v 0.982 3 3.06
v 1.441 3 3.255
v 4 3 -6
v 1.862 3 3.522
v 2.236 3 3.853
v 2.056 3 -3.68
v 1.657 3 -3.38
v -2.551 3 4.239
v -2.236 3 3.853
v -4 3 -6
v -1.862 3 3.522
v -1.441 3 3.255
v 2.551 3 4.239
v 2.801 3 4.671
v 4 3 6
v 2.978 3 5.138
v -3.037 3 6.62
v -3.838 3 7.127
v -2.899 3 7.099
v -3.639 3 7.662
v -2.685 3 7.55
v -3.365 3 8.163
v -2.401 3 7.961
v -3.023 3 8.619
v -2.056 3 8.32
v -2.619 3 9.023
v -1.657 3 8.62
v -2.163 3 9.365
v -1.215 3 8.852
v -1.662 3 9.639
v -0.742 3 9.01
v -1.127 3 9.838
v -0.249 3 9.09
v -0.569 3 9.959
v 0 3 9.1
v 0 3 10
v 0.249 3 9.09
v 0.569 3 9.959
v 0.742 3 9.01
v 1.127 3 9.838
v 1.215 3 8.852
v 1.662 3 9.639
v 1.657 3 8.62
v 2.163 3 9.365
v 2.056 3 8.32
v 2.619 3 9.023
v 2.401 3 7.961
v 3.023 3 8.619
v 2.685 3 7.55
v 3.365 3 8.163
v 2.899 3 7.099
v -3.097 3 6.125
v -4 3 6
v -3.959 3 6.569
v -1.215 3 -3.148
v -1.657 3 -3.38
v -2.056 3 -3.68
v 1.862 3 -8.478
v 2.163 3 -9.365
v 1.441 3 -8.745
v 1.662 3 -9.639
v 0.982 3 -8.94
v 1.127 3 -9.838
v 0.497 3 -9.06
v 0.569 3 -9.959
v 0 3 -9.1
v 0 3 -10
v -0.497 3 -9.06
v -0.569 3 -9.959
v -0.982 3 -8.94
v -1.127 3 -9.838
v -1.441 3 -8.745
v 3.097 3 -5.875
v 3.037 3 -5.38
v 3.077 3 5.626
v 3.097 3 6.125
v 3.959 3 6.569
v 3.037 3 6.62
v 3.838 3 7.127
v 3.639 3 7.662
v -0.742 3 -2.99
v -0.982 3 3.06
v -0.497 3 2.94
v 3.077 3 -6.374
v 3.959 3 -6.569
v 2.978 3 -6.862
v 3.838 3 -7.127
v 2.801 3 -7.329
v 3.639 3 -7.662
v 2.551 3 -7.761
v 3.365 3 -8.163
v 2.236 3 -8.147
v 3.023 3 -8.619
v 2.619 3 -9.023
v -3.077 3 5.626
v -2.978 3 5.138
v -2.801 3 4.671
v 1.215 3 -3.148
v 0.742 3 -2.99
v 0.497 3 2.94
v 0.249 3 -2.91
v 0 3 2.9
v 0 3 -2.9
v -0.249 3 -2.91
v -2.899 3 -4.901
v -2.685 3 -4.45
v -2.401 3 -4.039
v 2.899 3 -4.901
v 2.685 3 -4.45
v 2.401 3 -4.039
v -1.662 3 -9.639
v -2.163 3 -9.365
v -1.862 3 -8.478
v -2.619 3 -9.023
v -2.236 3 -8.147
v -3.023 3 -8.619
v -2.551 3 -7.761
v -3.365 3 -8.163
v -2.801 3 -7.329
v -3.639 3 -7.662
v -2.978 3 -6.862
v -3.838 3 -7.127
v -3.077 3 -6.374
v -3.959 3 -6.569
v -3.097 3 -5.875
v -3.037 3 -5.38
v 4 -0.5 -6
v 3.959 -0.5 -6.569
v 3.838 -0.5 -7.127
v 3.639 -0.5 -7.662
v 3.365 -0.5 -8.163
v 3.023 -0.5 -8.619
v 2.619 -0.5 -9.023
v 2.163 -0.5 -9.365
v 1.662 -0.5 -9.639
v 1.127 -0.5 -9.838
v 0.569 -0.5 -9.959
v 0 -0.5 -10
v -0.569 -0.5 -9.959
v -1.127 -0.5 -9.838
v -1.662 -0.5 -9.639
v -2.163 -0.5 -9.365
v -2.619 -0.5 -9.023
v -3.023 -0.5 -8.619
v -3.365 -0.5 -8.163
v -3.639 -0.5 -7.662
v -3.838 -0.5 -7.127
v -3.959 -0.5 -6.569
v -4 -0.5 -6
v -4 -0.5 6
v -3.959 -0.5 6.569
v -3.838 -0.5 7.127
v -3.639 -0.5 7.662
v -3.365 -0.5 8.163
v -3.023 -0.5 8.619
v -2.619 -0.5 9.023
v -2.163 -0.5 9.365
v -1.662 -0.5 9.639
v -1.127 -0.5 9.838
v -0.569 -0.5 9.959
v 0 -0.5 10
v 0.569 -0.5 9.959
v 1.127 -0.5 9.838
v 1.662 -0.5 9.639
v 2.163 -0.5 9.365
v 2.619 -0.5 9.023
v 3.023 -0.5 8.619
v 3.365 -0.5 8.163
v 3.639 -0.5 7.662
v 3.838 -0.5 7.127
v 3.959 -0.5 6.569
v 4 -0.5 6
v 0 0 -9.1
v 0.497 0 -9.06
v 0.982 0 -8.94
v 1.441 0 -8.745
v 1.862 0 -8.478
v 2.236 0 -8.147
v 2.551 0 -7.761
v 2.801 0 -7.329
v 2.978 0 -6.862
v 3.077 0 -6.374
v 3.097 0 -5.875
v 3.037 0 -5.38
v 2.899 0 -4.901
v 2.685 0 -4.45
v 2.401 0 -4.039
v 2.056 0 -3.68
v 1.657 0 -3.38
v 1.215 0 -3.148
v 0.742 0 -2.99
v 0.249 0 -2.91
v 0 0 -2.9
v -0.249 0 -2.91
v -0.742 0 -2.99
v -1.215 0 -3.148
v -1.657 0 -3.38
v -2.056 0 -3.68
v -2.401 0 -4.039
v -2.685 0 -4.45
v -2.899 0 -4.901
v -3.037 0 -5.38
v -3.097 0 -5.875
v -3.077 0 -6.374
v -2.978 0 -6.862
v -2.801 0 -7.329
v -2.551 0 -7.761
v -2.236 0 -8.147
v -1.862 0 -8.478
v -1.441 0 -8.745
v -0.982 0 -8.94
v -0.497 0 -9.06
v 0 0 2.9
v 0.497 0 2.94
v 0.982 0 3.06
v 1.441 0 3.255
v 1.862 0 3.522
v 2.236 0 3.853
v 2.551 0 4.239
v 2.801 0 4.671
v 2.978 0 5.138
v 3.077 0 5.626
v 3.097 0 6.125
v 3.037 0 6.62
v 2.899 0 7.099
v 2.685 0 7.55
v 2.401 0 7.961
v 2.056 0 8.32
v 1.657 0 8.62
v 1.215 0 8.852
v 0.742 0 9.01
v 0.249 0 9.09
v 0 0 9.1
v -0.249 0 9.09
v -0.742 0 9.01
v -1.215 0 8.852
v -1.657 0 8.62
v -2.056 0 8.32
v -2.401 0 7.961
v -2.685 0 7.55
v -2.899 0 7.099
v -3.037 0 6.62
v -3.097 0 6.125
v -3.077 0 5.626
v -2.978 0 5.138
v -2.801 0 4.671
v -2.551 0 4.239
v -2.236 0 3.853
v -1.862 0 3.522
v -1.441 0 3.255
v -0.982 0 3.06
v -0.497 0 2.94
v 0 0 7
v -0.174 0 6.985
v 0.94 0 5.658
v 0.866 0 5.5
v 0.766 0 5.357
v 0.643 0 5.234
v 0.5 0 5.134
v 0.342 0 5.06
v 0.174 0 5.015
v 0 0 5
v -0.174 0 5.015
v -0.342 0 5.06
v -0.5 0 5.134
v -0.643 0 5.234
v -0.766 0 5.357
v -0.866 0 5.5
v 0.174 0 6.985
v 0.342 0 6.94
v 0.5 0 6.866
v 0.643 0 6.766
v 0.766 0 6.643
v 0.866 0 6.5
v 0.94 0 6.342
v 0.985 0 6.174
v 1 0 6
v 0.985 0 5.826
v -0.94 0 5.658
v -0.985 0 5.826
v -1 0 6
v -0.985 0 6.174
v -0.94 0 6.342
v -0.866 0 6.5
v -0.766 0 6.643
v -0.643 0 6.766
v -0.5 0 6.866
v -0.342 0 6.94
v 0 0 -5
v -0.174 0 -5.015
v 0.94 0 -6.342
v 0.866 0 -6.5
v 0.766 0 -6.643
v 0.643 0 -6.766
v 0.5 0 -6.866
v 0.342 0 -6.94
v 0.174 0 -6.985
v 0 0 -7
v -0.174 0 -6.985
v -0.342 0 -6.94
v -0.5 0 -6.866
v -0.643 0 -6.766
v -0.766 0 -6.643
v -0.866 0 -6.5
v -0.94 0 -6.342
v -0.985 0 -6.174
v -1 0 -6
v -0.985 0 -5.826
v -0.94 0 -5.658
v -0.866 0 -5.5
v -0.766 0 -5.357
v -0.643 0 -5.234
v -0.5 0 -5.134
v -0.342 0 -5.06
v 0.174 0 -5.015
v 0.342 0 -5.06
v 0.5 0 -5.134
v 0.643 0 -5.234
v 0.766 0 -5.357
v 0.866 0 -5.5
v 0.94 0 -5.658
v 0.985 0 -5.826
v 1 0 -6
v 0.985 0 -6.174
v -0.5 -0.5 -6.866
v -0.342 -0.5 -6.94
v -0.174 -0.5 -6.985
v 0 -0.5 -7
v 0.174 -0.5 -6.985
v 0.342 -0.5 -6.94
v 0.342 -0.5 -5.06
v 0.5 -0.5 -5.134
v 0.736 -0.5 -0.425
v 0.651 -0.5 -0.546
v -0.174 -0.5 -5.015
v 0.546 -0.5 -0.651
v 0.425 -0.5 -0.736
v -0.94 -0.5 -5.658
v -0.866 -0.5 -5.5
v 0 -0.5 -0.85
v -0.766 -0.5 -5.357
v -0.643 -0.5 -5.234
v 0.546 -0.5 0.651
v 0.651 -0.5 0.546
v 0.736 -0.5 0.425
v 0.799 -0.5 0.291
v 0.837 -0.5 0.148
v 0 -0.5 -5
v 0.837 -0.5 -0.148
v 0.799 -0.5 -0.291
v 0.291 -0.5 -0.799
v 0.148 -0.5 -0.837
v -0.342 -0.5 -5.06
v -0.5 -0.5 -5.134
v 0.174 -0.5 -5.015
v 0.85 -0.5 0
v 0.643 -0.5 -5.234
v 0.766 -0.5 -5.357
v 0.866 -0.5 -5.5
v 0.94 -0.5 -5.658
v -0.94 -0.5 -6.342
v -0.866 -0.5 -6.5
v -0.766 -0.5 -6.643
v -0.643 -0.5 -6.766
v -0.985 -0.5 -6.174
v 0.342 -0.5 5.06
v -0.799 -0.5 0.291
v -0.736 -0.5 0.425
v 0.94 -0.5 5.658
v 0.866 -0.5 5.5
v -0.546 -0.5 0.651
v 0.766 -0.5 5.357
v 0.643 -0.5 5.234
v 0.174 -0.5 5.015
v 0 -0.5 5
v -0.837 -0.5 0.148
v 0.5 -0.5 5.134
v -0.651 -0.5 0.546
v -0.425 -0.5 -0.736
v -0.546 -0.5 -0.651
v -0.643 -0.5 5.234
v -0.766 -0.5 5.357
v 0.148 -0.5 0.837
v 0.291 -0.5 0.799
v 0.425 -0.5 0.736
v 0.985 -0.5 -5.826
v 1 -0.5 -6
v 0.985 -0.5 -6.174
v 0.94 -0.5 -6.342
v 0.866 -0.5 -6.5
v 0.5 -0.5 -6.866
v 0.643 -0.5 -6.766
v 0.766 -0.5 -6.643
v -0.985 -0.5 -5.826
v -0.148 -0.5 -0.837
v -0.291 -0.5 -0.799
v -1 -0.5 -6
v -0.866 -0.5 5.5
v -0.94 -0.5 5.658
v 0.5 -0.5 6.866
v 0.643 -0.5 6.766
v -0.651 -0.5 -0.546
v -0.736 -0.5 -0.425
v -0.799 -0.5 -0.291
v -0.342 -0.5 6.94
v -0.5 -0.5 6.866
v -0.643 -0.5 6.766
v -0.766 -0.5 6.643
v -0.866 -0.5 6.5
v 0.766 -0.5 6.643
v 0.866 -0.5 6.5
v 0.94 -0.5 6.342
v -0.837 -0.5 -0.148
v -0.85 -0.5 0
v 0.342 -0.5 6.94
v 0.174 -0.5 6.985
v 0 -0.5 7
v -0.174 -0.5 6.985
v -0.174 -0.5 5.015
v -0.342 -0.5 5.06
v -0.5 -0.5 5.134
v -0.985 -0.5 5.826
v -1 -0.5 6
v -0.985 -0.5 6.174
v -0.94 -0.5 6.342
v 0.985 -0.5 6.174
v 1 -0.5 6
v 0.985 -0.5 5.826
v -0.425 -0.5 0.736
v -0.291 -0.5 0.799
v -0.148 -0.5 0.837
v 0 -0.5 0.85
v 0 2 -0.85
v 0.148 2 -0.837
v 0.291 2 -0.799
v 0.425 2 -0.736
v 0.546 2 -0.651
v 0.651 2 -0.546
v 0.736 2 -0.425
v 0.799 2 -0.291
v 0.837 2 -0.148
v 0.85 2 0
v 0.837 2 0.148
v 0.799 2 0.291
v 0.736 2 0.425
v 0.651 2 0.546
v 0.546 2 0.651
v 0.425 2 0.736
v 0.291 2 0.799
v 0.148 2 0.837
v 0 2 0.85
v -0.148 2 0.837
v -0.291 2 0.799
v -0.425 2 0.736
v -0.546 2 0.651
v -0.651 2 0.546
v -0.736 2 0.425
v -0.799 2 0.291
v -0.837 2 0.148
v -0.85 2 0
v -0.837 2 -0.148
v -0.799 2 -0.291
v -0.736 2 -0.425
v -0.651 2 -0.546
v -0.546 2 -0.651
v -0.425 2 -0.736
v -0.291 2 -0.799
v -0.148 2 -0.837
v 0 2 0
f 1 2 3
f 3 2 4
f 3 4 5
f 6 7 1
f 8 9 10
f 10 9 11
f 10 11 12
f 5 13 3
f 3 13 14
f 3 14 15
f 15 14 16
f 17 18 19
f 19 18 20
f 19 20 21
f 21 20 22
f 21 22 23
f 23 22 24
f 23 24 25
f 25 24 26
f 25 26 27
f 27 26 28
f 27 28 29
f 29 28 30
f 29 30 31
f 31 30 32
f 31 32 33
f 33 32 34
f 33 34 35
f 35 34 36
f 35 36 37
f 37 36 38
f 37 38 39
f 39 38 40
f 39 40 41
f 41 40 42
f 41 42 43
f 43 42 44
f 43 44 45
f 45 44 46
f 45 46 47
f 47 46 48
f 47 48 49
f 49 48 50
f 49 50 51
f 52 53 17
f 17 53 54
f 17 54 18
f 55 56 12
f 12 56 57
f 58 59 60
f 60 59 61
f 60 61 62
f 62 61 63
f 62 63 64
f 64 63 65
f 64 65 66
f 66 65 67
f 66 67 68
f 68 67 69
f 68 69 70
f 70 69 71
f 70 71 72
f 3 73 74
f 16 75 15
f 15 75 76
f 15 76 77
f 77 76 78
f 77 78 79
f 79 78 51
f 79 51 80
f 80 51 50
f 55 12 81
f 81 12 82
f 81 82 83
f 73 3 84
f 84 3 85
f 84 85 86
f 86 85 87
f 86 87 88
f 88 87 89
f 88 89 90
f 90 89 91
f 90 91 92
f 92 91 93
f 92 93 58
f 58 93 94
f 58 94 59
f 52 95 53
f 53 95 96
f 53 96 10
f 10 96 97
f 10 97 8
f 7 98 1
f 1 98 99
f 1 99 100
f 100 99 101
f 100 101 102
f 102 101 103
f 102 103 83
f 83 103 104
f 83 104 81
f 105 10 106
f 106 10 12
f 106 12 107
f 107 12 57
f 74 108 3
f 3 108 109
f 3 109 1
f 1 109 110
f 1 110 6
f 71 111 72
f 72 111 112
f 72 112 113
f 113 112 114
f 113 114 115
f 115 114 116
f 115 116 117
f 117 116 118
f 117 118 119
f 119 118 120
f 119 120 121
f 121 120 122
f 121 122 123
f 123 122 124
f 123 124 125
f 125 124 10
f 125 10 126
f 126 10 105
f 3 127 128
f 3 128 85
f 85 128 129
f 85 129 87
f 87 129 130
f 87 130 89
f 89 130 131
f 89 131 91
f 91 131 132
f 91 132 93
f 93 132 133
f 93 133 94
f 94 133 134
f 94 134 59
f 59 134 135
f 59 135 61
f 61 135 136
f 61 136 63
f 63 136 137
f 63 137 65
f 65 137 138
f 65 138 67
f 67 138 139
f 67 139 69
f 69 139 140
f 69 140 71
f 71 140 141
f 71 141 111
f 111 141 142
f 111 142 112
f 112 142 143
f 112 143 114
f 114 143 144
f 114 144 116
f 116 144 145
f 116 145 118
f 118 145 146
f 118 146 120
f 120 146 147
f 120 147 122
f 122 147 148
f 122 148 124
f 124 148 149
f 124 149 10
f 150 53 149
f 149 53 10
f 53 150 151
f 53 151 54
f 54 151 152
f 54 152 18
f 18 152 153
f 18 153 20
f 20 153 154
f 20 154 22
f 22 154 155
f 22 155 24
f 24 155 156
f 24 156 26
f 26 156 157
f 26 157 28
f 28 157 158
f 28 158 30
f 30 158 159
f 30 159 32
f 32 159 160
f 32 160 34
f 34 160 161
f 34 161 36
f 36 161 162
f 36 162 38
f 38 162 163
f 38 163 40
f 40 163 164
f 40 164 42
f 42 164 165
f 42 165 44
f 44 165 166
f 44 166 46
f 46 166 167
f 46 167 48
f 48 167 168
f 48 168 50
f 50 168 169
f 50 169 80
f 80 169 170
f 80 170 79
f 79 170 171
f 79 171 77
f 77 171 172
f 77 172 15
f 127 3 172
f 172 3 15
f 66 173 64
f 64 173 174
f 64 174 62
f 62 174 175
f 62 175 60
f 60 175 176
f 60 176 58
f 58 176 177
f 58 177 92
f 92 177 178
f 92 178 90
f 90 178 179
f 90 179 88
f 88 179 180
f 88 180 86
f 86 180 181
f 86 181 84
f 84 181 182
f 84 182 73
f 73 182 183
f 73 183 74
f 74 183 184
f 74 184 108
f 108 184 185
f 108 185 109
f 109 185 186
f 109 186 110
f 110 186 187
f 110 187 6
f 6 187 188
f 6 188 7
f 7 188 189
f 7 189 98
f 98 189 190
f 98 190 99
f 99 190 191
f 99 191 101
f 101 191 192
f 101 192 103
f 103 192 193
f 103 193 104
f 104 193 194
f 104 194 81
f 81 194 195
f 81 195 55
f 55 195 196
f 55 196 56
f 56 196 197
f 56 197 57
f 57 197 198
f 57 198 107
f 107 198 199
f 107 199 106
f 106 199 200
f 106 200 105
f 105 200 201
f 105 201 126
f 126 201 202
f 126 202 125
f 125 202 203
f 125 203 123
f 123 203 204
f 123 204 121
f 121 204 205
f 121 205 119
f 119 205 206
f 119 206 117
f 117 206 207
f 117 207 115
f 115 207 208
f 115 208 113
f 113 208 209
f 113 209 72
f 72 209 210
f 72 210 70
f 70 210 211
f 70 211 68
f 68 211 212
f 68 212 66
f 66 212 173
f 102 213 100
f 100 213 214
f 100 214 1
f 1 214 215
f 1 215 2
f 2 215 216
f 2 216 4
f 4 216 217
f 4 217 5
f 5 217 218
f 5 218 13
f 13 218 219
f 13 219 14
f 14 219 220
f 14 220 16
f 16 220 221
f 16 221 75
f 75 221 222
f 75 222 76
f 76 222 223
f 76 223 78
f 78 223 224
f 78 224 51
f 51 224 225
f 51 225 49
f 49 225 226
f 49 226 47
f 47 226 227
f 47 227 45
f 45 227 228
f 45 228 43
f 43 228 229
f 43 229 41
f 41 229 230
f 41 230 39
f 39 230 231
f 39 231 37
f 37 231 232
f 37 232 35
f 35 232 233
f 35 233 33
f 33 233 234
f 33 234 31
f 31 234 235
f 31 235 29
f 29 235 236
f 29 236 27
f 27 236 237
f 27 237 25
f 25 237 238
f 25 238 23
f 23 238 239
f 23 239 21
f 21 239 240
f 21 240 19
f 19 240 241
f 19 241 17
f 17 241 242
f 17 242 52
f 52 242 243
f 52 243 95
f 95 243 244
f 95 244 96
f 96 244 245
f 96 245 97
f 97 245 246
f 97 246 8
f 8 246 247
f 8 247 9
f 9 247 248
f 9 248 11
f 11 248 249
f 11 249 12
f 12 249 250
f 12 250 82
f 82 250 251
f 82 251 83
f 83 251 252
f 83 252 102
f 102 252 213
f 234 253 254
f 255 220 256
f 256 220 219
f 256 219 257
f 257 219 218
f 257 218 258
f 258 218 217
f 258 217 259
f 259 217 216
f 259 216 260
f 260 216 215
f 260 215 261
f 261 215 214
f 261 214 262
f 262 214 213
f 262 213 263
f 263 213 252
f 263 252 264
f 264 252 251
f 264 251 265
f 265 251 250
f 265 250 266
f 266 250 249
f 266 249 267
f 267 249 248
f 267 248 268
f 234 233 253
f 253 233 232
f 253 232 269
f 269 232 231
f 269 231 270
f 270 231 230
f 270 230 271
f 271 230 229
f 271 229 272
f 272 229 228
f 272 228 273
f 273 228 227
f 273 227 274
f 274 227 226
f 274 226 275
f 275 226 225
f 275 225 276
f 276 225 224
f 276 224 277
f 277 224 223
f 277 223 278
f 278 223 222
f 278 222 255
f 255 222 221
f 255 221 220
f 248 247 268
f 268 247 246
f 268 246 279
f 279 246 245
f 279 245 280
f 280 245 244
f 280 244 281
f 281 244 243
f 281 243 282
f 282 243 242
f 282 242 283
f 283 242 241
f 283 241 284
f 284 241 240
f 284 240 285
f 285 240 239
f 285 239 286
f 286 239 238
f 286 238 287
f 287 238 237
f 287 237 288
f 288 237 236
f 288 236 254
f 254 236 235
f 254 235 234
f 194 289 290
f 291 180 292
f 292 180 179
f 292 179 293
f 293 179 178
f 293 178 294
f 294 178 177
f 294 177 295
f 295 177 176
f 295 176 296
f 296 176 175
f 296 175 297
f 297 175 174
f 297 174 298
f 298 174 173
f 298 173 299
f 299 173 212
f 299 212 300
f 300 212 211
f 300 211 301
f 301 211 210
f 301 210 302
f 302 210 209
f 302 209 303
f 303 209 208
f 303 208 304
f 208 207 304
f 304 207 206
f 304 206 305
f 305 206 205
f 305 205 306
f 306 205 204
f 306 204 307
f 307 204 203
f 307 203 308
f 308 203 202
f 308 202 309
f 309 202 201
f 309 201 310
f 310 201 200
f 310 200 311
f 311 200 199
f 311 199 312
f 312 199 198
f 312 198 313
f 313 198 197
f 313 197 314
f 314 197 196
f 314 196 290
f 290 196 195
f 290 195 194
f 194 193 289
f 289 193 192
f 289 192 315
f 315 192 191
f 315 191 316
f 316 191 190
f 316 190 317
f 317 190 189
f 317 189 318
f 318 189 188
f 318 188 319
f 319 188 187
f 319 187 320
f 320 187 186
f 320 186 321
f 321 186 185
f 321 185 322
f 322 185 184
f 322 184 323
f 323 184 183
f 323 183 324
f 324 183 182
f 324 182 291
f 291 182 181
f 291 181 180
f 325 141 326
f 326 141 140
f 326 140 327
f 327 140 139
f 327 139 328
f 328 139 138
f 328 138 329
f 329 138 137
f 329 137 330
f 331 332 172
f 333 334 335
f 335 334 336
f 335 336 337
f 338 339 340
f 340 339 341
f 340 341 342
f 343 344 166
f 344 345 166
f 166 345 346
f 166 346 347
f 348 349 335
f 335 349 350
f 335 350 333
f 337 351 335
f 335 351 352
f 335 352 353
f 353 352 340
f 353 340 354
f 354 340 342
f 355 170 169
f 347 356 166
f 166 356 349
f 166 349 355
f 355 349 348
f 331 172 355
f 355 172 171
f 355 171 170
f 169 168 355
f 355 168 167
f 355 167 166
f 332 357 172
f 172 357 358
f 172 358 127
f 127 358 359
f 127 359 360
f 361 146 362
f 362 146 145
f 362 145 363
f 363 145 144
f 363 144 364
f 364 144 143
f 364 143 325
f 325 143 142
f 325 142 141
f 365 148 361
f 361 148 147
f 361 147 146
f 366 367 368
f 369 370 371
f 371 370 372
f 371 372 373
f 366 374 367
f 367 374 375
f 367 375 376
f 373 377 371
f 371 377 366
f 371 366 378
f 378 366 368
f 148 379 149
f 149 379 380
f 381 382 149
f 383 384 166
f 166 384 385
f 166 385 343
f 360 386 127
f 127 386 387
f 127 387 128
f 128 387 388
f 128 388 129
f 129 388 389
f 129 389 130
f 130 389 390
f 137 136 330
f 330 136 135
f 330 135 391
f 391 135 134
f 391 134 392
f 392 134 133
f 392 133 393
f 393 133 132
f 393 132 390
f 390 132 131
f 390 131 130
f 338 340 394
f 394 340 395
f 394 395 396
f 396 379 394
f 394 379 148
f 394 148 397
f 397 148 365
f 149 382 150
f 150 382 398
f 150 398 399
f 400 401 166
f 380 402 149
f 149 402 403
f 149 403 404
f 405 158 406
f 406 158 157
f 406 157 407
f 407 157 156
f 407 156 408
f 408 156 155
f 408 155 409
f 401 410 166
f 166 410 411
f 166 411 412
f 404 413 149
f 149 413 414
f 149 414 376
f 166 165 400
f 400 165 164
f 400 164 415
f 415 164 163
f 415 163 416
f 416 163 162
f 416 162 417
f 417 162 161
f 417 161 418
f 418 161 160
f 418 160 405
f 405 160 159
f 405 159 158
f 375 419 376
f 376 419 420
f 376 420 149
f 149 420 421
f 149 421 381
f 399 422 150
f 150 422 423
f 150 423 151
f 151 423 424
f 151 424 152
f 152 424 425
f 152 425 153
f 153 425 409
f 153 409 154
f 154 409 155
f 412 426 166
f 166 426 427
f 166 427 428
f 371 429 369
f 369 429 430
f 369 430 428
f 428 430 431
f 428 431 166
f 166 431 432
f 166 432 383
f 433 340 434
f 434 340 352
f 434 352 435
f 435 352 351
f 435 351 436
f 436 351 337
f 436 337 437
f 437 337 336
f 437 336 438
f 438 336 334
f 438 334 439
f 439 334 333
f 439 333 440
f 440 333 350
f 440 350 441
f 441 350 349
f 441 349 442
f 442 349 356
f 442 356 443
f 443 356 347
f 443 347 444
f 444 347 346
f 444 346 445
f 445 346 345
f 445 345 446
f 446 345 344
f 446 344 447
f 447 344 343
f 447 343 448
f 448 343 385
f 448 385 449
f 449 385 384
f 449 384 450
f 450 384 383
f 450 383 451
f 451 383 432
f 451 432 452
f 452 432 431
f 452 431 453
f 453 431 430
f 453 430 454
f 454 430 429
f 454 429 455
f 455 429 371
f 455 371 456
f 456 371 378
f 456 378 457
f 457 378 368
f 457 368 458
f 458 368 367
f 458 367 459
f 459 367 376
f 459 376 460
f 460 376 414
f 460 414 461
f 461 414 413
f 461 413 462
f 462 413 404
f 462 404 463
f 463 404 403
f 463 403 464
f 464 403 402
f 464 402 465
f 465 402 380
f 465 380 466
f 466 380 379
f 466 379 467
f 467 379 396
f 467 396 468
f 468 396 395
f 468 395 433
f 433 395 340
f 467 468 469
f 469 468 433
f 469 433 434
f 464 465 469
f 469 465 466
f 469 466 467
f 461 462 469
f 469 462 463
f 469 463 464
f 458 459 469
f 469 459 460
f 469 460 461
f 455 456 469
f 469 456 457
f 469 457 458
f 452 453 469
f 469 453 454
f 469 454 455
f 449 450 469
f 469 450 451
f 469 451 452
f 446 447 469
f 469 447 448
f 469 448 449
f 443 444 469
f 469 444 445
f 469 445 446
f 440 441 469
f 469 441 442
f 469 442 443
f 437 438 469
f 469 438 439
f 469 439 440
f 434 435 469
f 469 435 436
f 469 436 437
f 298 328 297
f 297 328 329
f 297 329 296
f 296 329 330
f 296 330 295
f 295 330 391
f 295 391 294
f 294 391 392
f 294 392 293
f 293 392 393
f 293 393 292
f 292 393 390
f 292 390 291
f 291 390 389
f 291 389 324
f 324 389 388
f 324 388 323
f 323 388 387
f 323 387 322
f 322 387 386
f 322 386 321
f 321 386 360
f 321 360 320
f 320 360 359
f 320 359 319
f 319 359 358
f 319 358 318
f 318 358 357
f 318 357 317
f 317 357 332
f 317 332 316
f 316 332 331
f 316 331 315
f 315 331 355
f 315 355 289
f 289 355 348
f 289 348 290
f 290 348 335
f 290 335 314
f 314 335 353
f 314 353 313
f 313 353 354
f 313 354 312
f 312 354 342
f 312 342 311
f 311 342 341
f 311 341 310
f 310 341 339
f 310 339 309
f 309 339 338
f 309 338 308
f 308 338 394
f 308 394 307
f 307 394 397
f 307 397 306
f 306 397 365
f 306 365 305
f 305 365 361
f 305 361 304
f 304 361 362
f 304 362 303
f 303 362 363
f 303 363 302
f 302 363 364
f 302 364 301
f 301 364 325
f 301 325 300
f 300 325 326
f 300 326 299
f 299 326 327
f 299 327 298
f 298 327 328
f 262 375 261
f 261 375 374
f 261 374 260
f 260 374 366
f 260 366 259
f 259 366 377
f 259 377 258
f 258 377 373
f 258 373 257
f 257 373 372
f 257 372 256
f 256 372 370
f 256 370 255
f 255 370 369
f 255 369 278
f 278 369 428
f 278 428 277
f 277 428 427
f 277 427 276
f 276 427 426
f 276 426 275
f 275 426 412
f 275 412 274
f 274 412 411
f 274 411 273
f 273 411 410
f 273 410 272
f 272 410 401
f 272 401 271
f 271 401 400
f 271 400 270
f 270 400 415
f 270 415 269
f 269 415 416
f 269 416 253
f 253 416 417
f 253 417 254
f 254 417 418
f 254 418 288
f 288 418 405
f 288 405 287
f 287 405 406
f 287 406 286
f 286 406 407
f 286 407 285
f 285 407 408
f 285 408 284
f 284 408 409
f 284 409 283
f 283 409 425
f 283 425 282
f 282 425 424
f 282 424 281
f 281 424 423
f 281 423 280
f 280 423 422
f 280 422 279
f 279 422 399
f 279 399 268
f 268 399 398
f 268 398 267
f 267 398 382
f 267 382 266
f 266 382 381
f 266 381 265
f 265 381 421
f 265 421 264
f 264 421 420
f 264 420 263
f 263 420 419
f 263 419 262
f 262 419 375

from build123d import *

# Parameters (mm, degrees)
SKETCH1_R           = 3.1
BOSS_EXTRUDE1_DEPTH = 3
BOSS_EXTRUDE2_START = 0.5
BOSS_EXTRUDE2_DEPTH = 0.5
SKETCH3_R           = 0.85
CUT_EXTRUDE1_DEPTH  = 2.5
SKETCH4_R           = 1
CUT_EXTRUDE2_DEPTH  = 12.324751653


with BuildPart() as part:
    # Sketch1 → Boss-Extrude1 (new body)
    with BuildSketch(Plane(origin=(0, 0, 0), x_dir=(1, 0, 0), z_dir=(0, 1, 0))):
        with BuildLine():
            Line((4, 6), (4, -6))
            ThreePointArc((4, -6), (0, -10), (-4, -6))
            Line((-4, -6), (-4, 6))
            ThreePointArc((-4, 6), (0, 10), (4, 6))
        make_face()
        with Locations(Location((0, 6, 0), (0, 0, 270))):
            Circle(SKETCH1_R, mode=Mode.SUBTRACT)
        with Locations(Location((0, -6, 0), (0, 0, 270))):
            Circle(SKETCH1_R, mode=Mode.SUBTRACT)
    extrude(amount=BOSS_EXTRUDE1_DEPTH)

    # Sketch2 → Boss-Extrude2 (add)
    with BuildSketch(Plane.XZ.offset(BOSS_EXTRUDE2_START)):
        with BuildLine():
            Line((4, 6), (4, -6))
            ThreePointArc((4, -6), (0, -10), (-4, -6))
            Line((-4, -6), (-4, 6))
            ThreePointArc((-4, 6), (0, 10), (4, 6))
        make_face()
    extrude(amount=-BOSS_EXTRUDE2_DEPTH)

    # Sketch3 → Cut-Extrude1 (cut)
    with BuildSketch(Plane.XZ.offset(0.5)):
        with Locations(Location((0, 0, 0), (0, 0, 270))):
            Circle(SKETCH3_R)
    extrude(amount=-CUT_EXTRUDE1_DEPTH, mode=Mode.SUBTRACT)

    # Sketch4 → Cut-Extrude2 (cut, through all)
    with BuildSketch(Plane.XZ.offset(0.5)):
        with Locations(Location((0, 6, 0), (0, 0, 270))):
            Circle(SKETCH4_R)
        with Locations(Location((0, -6, 0), (0, 0, 270))):
            Circle(SKETCH4_R)
    extrude(amount=-CUT_EXTRUDE2_DEPTH, mode=Mode.SUBTRACT)


solid = part.part
